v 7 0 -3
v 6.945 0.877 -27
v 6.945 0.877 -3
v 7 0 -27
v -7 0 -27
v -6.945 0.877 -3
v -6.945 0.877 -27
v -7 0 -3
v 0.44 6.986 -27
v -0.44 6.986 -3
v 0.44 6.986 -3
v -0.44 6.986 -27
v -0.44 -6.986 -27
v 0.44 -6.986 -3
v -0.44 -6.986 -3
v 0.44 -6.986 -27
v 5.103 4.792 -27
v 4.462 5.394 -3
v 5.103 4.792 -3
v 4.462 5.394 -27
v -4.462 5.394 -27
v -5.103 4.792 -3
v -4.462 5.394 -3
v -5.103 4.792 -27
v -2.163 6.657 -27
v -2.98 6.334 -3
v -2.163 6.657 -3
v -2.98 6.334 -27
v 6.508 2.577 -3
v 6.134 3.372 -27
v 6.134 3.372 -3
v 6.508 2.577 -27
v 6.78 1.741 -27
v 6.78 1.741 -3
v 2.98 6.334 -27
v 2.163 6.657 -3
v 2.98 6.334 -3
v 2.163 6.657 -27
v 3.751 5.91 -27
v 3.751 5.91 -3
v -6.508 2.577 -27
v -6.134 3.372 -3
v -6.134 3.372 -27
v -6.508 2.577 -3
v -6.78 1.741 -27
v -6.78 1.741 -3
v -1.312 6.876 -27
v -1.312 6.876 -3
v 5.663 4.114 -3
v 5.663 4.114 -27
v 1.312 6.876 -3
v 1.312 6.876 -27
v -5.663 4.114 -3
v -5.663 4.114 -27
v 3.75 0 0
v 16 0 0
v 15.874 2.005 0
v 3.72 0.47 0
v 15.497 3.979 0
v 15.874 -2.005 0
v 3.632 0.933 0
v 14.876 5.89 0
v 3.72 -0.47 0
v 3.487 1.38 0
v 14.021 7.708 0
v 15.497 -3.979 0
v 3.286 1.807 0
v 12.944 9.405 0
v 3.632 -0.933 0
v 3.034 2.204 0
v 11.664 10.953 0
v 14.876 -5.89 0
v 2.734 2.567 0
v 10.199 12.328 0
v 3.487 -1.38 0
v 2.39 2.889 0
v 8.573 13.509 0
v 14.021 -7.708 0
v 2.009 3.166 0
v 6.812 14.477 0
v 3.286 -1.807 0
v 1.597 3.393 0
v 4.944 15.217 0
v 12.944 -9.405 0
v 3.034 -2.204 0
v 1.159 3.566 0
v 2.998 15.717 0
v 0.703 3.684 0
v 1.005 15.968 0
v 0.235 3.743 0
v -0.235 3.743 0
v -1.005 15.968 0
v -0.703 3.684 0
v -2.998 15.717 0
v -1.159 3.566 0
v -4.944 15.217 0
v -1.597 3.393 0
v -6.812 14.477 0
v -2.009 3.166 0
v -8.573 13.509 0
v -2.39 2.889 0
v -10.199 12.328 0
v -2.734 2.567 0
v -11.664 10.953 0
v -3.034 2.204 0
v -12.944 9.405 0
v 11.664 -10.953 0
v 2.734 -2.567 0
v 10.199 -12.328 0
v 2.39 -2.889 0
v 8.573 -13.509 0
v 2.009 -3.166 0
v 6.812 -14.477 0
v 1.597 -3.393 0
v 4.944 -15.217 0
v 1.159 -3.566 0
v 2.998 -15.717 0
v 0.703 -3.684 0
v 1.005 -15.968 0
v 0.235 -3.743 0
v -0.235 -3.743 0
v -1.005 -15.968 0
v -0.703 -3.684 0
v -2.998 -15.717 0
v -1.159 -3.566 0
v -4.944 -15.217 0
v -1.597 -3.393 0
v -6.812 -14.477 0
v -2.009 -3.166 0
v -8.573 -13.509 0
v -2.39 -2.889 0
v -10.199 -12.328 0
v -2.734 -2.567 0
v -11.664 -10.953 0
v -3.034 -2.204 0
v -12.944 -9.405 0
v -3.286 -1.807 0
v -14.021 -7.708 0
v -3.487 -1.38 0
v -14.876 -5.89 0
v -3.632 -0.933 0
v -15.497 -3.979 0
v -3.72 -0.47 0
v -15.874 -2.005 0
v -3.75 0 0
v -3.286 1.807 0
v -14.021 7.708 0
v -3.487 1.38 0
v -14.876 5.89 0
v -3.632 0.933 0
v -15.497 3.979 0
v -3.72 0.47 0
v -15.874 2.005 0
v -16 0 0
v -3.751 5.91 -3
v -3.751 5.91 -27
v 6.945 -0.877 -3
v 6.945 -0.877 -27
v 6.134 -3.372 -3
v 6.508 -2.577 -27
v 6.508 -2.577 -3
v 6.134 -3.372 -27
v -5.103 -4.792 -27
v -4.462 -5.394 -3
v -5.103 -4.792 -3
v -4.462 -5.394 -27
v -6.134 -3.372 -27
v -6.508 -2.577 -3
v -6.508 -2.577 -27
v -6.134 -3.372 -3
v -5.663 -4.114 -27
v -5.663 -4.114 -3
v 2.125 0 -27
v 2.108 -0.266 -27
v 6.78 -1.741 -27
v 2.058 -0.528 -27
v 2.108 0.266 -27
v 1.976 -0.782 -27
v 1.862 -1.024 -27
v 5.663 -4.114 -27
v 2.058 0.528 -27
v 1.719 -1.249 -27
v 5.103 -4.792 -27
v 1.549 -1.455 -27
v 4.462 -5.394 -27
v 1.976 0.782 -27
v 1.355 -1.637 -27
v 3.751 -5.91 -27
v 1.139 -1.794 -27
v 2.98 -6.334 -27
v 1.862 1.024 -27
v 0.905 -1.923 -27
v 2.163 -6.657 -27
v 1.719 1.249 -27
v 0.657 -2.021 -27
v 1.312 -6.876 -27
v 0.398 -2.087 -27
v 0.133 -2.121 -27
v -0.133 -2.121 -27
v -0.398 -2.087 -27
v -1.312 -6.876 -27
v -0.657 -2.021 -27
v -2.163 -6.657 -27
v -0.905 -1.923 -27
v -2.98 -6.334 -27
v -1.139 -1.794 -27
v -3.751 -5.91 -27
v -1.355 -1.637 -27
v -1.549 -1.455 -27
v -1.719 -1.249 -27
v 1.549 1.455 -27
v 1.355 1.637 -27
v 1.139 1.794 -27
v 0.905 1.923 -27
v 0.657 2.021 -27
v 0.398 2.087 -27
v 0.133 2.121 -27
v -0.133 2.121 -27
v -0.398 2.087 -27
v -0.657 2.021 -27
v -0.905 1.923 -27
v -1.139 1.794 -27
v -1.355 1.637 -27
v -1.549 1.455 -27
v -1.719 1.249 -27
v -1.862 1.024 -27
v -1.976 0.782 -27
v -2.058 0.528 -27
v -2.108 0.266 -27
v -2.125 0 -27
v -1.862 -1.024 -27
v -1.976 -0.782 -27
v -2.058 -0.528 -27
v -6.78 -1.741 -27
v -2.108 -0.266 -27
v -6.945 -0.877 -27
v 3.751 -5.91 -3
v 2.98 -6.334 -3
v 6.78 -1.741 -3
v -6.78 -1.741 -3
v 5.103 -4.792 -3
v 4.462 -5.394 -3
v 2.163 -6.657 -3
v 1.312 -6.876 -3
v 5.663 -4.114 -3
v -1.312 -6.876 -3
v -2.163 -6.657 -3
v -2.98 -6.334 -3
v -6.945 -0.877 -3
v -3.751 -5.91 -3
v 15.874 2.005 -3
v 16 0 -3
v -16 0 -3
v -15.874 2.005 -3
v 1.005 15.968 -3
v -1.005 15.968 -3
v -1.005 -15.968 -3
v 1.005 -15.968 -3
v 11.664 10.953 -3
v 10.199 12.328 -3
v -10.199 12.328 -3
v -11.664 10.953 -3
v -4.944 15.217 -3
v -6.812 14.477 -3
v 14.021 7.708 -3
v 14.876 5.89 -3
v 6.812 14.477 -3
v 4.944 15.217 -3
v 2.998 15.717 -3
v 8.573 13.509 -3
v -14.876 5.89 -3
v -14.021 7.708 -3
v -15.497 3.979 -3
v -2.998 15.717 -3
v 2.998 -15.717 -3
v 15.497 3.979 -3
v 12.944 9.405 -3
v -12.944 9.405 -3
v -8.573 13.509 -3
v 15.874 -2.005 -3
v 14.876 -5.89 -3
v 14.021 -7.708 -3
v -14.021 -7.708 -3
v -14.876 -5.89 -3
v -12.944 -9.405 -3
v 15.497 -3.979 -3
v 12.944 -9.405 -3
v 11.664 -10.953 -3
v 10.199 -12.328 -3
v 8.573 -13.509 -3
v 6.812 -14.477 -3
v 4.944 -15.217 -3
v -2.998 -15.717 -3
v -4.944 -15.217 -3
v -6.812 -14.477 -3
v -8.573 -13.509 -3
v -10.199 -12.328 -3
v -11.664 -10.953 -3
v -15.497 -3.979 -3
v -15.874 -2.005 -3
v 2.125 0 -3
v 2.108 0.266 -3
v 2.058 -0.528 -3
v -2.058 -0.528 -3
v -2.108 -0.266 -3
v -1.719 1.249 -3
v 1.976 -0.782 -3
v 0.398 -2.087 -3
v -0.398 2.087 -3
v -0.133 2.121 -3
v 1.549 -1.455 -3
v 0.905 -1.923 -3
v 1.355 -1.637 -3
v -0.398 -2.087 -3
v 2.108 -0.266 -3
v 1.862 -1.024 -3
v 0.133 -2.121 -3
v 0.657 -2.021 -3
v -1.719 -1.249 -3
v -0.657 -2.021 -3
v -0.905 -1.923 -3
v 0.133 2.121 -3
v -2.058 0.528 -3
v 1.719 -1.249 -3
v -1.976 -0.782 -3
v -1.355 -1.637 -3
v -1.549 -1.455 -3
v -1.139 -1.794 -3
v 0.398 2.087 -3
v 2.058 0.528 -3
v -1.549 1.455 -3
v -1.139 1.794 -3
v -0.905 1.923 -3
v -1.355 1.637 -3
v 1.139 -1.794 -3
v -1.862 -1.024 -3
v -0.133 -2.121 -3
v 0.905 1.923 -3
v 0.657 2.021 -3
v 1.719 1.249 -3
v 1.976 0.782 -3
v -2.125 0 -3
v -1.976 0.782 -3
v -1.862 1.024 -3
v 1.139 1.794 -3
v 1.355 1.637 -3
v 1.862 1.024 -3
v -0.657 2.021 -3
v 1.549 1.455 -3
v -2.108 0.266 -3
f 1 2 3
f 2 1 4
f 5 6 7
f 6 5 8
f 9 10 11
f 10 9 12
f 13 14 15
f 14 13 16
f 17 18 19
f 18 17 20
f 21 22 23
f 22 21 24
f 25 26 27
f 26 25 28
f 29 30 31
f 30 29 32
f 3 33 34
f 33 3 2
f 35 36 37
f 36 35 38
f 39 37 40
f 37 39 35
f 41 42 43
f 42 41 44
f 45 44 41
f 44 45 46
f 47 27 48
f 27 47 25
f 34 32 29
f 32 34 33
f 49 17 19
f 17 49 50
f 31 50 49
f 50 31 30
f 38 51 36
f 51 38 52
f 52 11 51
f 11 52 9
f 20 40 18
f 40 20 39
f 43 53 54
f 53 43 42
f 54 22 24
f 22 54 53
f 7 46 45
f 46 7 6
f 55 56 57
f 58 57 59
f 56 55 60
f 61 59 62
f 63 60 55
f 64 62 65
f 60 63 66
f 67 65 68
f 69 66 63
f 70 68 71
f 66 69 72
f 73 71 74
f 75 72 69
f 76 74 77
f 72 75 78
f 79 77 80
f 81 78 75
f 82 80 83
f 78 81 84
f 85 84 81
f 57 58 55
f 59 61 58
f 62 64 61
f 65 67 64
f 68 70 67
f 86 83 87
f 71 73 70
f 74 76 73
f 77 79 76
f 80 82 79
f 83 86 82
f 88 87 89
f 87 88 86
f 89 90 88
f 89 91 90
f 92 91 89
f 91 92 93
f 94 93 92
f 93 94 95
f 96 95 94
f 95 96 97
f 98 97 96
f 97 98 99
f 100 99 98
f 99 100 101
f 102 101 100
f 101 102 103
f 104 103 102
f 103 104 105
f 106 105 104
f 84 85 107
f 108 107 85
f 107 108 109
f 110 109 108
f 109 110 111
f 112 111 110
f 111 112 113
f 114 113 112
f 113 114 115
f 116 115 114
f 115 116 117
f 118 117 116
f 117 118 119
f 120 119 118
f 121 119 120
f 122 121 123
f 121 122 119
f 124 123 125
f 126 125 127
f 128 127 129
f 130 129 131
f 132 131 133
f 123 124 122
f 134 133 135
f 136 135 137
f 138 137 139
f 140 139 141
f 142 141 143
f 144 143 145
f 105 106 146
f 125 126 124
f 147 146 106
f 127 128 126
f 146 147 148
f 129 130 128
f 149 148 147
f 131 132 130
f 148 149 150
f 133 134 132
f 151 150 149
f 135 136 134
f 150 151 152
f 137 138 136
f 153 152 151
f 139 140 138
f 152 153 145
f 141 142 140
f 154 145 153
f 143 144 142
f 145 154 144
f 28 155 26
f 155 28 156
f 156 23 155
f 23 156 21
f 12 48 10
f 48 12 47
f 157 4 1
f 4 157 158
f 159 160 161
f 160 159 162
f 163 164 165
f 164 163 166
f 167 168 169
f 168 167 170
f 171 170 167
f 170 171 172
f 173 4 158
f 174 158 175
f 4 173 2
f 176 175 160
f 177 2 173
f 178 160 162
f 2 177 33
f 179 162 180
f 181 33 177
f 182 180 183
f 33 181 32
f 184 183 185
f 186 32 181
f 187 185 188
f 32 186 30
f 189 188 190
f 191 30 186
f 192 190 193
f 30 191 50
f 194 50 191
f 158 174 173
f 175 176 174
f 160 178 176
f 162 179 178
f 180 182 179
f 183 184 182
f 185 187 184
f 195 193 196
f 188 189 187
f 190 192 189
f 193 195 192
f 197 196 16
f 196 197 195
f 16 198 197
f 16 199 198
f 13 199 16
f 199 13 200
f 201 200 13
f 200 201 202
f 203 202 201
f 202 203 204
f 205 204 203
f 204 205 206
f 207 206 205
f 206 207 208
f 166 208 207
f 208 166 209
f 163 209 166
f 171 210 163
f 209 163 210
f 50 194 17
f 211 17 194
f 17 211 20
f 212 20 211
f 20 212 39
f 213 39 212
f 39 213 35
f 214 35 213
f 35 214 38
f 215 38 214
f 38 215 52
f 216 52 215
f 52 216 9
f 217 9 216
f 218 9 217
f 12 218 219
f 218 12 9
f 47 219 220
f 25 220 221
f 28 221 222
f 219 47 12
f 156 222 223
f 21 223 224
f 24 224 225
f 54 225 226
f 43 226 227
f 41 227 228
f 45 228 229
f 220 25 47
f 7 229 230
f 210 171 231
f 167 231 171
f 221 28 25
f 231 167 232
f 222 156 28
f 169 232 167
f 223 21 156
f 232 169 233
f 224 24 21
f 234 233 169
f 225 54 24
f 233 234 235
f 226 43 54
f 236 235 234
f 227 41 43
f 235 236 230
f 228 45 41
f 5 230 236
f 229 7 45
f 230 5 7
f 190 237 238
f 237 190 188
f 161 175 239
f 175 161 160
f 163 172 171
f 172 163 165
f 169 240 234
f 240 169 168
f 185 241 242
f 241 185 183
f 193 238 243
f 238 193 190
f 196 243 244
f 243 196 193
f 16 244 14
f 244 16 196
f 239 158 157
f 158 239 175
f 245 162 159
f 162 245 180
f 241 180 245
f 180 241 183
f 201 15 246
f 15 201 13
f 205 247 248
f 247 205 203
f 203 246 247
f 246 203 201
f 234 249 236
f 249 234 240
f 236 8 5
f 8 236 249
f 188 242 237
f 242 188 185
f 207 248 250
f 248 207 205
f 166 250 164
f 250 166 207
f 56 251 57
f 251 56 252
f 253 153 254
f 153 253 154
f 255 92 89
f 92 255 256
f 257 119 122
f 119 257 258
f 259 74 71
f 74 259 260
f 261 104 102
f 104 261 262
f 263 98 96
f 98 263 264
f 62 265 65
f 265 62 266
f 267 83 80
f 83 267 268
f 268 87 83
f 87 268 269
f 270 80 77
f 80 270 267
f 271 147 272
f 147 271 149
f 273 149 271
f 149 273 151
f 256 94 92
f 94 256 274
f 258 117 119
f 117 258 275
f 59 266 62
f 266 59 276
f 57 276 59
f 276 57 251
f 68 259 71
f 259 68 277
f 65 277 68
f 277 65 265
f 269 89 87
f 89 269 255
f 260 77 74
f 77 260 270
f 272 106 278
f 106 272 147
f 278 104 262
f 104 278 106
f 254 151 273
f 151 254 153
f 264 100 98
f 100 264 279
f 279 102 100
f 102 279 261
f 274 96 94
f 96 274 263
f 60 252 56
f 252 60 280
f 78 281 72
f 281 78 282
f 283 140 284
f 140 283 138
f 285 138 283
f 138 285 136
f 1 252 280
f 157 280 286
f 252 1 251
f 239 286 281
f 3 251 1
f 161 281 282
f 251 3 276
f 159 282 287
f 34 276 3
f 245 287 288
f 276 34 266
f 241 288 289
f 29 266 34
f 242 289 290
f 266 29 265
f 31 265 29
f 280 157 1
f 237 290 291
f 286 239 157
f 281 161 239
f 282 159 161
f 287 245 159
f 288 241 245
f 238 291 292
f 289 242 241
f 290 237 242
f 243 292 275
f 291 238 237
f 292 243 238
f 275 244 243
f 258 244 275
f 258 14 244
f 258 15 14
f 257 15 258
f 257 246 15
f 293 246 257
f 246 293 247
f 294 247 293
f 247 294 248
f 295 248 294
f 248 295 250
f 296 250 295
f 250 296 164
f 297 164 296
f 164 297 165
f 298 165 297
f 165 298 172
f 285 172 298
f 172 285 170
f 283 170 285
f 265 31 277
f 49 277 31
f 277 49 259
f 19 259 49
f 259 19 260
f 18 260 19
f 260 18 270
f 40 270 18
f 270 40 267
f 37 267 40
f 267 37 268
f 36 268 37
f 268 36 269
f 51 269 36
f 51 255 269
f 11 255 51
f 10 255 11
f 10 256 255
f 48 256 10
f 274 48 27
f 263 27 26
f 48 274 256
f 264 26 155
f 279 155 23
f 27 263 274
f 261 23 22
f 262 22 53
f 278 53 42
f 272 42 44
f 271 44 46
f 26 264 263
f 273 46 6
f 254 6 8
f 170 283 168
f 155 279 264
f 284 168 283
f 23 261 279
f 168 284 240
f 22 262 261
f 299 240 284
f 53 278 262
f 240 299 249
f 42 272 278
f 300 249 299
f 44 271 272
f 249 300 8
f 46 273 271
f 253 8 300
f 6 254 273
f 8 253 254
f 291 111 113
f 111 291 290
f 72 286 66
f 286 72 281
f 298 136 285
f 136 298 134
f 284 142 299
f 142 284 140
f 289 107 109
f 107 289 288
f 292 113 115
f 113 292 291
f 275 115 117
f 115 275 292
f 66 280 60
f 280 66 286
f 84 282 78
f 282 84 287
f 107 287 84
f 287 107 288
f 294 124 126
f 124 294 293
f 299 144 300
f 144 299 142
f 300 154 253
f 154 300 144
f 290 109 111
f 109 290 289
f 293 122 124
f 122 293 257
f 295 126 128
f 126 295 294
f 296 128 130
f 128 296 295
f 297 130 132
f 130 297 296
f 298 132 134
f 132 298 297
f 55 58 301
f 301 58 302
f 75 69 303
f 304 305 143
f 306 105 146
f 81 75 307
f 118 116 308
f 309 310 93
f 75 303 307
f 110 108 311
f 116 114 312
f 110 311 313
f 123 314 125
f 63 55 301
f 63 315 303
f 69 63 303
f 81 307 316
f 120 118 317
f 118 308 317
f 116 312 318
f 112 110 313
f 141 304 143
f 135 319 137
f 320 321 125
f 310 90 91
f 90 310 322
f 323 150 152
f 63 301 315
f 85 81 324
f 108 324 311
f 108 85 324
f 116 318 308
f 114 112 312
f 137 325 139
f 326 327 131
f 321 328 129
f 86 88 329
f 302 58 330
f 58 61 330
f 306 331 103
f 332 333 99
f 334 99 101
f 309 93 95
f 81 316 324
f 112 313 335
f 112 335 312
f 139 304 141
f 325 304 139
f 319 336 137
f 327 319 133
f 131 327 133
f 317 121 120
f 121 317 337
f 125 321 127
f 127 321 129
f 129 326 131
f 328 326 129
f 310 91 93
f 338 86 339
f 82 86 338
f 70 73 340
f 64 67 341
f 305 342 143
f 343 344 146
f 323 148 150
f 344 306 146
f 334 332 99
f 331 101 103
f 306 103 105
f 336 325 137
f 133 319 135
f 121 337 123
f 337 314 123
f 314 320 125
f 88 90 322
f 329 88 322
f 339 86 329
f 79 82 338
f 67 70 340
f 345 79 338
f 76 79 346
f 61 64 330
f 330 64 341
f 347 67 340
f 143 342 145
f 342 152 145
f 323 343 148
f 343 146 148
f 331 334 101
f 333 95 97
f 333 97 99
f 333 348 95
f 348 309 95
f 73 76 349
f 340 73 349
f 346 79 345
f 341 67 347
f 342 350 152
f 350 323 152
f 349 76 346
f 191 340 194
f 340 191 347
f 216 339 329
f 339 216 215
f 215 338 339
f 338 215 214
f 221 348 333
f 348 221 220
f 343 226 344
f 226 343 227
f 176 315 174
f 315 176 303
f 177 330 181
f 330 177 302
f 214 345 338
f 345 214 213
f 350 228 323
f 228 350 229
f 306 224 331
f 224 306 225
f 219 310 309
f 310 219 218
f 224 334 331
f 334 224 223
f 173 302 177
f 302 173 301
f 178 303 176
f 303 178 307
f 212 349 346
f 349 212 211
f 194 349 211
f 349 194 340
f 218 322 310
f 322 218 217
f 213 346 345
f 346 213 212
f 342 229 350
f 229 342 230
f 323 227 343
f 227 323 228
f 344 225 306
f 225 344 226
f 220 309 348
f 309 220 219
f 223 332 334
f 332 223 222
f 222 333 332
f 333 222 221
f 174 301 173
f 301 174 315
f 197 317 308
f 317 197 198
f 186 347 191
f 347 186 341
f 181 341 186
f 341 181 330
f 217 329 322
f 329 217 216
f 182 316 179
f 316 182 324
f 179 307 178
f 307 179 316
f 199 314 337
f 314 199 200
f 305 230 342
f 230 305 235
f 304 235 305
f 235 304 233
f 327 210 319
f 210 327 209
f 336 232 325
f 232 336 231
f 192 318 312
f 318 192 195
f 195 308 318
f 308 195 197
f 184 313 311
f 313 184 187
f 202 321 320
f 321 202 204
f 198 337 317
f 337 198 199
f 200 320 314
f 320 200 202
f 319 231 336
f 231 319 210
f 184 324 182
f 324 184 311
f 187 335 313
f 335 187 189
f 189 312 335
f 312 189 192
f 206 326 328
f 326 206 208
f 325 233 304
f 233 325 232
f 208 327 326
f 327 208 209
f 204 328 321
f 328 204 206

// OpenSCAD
$fn = 50;


difference() {
	union() {
		translate(v = [0, 0, -27.0000000000]) {
			cylinder(h = 27, r = 7.0000000000);
		}
		translate(v = [0, 0, -3.0000000000]) {
			cylinder(h = 3, r = 16.0000000000);
		}
	}
	union() {
		translate(v = [0, 0, 0]) {
			rotate(a = [0, 0, 0]) {
				difference() {
					union() {
						#translate(v = [0, 0, -27.0000000000]) {
							cylinder(h = 27, r = 2.0000000000);
						}
						#translate(v = [0, 0, -3]) {
							cylinder(h = 3, r1 = 2.1250000000, r2 = 3.7500000000);
						}
						#translate(v = [0, 0, -27.0000000000]) {
							cylinder(h = 27, r = 2.1250000000);
						}
						#translate(v = [0, 0, -27.0000000000]) {
							cylinder(h = 27, r = 2.0000000000);
						}
					}
					union();
				}
			}
		}
	}
}
